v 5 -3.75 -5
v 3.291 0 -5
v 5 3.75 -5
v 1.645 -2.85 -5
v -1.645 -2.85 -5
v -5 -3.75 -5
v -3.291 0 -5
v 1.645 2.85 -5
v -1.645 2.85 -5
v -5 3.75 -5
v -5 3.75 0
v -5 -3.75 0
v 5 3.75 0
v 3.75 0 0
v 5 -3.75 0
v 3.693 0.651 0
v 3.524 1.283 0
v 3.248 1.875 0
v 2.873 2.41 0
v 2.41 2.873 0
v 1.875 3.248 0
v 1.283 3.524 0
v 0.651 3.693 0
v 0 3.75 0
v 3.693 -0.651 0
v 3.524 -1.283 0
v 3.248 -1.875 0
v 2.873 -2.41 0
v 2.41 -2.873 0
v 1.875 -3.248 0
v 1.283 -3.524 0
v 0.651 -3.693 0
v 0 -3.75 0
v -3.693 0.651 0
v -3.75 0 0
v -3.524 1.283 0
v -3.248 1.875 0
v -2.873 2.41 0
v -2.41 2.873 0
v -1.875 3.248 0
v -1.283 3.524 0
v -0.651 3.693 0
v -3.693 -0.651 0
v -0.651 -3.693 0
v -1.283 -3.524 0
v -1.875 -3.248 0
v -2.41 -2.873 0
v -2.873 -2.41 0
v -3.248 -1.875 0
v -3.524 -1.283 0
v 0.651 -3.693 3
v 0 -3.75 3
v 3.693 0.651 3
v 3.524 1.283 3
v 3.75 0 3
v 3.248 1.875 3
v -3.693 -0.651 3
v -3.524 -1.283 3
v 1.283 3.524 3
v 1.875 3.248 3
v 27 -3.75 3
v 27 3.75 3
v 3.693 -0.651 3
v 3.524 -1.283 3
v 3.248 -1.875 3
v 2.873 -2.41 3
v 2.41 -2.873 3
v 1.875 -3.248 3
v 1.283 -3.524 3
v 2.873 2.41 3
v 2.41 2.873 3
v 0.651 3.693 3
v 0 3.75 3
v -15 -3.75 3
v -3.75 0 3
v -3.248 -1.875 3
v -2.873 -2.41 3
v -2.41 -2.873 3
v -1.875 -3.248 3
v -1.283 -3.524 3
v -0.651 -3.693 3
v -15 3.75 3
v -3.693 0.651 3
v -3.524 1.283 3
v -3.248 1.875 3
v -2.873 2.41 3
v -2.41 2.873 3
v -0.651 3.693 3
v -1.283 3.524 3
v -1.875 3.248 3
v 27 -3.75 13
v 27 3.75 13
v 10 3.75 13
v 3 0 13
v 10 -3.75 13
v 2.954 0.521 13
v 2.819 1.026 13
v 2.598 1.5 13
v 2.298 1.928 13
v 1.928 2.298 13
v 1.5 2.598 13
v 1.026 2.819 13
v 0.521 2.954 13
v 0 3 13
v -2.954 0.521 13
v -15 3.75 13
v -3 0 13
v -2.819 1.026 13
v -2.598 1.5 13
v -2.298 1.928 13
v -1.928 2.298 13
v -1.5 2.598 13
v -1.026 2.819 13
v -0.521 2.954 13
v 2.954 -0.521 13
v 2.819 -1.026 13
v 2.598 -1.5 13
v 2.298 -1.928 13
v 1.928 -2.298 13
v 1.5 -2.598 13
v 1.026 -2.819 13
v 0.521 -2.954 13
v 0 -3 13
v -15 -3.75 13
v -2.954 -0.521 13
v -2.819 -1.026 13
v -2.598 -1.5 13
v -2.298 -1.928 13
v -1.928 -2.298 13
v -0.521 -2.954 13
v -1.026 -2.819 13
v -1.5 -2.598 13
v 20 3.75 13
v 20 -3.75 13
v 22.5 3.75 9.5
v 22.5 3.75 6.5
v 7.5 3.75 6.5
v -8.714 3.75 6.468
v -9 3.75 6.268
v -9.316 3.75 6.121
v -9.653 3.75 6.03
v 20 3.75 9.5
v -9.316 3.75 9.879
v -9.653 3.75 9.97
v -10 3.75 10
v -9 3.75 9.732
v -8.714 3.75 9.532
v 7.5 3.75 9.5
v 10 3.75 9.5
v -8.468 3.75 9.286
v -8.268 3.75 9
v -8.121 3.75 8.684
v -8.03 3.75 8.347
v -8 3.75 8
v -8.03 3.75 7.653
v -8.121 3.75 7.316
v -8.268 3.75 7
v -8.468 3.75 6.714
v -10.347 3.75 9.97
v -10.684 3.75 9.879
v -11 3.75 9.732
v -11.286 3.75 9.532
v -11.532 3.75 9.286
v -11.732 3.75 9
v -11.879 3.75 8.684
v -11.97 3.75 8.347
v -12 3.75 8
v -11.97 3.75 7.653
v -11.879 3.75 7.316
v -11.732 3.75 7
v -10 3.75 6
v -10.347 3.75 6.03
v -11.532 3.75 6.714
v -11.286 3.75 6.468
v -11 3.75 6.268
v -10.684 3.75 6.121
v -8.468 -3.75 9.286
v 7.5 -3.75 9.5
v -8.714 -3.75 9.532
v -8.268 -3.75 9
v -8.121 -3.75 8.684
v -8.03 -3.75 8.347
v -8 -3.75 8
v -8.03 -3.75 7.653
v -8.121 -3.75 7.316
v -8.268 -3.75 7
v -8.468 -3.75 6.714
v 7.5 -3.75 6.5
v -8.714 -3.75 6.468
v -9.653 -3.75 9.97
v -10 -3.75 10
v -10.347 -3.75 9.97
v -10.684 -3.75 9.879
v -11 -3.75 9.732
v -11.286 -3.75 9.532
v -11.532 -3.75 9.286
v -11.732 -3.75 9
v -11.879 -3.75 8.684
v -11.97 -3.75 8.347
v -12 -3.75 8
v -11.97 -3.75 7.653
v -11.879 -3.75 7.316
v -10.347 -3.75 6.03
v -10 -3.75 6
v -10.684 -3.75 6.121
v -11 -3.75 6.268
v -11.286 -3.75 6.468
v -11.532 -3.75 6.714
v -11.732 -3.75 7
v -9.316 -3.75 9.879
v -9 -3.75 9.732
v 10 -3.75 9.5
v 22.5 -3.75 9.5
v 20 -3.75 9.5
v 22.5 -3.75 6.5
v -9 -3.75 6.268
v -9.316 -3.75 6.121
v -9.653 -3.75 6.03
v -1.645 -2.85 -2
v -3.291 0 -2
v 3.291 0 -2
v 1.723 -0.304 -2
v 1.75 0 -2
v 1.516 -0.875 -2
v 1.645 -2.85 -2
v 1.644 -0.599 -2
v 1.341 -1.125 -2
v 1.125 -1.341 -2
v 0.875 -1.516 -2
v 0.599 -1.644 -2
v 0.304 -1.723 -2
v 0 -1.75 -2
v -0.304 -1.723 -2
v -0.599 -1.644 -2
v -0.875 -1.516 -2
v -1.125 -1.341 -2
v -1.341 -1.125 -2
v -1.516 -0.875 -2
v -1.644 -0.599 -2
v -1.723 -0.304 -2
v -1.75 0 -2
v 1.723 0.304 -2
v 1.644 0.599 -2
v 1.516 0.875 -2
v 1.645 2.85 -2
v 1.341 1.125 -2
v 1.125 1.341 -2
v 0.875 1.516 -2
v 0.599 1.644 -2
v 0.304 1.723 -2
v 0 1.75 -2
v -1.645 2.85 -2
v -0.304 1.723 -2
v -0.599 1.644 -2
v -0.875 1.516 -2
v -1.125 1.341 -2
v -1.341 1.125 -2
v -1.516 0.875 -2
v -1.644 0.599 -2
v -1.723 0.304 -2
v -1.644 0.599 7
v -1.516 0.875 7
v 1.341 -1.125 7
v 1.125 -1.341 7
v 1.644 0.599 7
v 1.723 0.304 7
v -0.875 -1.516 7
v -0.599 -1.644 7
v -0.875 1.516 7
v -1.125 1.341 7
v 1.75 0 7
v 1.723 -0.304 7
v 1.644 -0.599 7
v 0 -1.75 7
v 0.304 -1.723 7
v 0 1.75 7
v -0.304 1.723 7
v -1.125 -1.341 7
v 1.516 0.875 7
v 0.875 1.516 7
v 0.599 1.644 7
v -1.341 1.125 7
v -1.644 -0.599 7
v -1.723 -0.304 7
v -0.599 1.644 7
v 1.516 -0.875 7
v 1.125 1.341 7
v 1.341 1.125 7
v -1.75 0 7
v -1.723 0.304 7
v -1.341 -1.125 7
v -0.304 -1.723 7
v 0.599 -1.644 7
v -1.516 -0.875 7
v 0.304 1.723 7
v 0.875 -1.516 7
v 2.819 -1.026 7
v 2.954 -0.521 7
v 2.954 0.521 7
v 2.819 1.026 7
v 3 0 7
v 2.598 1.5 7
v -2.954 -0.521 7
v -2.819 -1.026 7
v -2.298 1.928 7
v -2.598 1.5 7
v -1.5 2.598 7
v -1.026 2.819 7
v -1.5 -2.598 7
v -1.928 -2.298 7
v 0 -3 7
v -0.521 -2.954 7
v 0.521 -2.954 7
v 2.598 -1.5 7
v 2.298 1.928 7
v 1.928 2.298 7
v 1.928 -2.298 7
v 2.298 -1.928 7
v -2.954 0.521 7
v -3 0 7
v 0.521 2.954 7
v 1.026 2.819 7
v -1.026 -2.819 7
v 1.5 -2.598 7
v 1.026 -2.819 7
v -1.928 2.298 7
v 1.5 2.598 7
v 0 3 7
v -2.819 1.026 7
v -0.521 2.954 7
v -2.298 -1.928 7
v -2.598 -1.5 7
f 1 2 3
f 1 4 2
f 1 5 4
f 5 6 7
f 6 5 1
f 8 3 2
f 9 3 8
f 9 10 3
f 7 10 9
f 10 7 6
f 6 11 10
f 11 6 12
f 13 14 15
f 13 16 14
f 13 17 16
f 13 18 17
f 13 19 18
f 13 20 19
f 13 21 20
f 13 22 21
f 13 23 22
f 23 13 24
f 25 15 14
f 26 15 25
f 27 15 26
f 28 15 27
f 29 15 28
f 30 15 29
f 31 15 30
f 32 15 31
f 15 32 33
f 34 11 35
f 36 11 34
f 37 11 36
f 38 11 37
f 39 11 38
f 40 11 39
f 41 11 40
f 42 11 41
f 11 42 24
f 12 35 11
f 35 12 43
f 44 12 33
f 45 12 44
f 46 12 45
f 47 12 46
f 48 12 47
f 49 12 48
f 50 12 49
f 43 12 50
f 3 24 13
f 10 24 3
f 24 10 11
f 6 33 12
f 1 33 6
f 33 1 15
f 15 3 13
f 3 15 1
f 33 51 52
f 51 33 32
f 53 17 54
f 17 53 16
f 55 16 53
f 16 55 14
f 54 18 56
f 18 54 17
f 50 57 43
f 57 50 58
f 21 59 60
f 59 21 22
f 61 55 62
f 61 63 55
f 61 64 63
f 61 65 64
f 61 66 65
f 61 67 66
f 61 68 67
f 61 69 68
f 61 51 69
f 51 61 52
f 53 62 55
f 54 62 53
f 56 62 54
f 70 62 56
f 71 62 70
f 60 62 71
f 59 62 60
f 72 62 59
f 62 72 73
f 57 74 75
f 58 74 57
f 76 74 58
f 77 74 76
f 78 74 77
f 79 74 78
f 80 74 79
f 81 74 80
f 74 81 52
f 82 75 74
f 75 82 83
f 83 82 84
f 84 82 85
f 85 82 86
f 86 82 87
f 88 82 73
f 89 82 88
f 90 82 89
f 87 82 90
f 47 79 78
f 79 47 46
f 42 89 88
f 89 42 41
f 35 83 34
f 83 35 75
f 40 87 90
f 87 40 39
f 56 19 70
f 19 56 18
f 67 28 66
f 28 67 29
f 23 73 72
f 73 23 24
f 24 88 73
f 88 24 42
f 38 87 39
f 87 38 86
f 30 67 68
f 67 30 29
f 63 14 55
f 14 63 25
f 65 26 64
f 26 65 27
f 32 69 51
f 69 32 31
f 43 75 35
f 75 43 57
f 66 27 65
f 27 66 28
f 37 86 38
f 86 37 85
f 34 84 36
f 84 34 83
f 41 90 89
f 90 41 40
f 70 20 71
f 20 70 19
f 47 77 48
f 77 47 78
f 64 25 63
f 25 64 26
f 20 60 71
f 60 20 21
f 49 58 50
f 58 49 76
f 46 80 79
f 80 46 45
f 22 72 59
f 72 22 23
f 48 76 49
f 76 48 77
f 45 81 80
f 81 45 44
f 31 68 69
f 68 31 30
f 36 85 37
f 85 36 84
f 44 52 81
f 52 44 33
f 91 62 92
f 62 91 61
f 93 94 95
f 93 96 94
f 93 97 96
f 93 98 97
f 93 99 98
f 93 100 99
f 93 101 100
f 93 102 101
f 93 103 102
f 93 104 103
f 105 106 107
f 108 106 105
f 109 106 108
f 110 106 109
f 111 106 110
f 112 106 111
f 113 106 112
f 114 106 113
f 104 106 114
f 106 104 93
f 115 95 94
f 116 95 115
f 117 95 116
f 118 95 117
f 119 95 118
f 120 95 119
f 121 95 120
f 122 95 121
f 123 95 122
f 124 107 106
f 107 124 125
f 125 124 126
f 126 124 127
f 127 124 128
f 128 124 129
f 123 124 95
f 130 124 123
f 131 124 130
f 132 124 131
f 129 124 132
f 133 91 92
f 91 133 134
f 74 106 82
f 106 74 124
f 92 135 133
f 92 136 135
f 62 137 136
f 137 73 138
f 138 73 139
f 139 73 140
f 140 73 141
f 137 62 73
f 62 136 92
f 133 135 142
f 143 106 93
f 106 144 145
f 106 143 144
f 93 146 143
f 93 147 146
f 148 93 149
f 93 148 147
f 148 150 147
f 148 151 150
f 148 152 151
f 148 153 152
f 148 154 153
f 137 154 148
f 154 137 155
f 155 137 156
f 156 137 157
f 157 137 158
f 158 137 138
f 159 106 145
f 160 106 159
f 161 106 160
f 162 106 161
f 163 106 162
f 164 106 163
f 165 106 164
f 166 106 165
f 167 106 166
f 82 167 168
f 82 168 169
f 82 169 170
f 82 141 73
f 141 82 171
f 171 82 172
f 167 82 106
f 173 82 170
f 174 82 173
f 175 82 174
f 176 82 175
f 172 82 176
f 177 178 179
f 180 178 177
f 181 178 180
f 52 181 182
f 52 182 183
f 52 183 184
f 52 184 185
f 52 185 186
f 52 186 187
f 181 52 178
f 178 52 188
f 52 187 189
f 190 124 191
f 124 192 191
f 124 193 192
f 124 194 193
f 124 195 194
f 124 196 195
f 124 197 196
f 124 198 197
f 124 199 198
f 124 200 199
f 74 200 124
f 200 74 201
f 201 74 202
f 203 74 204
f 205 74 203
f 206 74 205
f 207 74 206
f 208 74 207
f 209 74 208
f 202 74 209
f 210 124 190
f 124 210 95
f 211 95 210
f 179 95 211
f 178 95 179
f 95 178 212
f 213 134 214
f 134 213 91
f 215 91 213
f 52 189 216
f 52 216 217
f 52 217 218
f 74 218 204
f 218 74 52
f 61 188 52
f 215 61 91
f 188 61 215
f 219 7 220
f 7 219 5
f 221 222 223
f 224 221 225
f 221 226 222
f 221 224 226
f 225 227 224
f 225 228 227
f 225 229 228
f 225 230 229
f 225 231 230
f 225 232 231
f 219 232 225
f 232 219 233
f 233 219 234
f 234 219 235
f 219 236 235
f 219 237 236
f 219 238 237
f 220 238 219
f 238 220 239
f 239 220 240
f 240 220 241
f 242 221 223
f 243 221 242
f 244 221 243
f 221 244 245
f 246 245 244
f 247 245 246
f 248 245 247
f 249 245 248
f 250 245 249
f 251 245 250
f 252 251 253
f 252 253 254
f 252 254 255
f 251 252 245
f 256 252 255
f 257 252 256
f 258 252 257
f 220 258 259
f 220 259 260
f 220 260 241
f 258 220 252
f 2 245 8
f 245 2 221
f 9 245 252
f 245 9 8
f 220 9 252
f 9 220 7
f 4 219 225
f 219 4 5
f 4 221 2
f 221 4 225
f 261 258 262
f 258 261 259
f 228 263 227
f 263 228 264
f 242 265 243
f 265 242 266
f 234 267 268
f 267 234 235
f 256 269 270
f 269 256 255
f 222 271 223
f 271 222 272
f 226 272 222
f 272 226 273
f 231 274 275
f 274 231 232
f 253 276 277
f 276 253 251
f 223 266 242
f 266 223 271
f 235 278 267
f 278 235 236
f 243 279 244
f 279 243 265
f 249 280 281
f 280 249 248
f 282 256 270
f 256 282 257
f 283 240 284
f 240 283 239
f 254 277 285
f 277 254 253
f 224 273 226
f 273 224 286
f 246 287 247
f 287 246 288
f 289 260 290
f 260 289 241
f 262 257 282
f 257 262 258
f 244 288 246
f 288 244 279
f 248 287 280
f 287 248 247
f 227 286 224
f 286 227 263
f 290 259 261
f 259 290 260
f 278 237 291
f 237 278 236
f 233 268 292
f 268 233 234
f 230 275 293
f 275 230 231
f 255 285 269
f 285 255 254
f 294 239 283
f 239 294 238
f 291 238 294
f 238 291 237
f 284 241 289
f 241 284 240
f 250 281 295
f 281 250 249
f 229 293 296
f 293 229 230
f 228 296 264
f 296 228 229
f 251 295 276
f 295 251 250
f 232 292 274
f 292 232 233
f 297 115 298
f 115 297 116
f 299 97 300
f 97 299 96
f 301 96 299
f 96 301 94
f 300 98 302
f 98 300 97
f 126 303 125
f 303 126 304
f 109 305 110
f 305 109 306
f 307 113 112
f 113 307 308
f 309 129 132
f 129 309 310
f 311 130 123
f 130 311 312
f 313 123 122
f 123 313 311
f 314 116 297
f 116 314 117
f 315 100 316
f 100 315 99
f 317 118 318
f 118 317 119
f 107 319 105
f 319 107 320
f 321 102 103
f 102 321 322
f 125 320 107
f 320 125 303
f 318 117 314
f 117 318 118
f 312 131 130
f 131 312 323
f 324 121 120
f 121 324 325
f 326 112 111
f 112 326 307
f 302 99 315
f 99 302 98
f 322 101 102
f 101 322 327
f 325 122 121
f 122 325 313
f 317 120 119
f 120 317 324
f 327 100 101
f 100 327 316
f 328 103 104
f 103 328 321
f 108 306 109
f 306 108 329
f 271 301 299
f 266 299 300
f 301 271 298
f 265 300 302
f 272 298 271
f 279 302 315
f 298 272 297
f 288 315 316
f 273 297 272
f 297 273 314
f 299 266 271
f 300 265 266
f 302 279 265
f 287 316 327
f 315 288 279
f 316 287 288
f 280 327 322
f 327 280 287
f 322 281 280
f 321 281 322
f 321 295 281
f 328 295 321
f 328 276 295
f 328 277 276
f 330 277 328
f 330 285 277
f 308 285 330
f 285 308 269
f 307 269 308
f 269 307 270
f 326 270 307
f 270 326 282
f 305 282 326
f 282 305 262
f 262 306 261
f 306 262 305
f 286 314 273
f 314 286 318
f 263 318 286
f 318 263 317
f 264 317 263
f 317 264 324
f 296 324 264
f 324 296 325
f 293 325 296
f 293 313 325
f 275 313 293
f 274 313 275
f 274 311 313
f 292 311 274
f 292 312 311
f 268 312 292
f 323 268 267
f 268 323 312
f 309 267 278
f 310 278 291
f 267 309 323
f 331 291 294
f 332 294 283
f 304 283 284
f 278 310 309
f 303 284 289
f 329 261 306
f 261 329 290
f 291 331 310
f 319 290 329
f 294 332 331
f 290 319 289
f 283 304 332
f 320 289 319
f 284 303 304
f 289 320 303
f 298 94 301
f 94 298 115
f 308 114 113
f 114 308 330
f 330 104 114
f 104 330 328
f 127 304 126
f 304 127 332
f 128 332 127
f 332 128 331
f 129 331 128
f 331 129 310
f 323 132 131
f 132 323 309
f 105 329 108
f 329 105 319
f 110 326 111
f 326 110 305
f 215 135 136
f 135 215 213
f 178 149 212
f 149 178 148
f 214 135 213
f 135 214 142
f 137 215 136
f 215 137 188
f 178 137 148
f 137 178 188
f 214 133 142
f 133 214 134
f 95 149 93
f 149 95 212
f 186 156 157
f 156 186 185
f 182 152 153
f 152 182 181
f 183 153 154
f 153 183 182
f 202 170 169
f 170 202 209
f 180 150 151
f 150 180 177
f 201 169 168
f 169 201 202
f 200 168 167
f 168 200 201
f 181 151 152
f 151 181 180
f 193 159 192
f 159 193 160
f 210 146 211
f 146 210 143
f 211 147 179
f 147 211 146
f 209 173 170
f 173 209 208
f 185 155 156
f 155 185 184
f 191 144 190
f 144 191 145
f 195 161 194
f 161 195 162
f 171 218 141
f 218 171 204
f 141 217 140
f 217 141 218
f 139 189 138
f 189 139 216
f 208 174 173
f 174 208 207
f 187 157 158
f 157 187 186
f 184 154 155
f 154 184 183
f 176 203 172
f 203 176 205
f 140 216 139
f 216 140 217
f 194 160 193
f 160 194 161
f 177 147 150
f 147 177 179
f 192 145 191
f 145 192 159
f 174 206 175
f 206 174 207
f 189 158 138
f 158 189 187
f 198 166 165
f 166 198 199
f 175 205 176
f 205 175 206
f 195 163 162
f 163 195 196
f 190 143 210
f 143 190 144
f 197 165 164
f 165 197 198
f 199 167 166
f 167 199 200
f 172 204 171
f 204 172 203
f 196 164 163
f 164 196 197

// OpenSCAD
// file: ../lib.scad
module chamferedCube(x=10, y=10, z=10, chamfer=1)
{
    c=sin(45);

    minkowski()
    {
        cube([x-c*2,y-c*2,z-c*2],true);
        polyhedron([[c,0,0],[0,0,c],[0,c,0],[0,0,-c],[0,-c,0],[-c,0,0]],
        [[0,1,2], [0,2,3],[0,3,4],[0,4,1],[5,2,1], [5,3,2],[5,4,3],[5,1,4],]);
        //cube([10,10,10],true);
    }
}

module radCube(x=10, y=10, z=10, rad=1)
{
    minkowski()
    {
        cube([x-rad*2,y-rad*2,z-rad*2],true);
        sphere(r=rad);
        //cube([10,10,10],true);
    }
}

module radCylinder(d=5,h=50,r=1)
{
    minkowski()
    {
        cylinder(h,d-r*2,true);
        sphere(r=1);
        //cube([10,10,10],true);
    }
}

module hex(af=10)
{
    r= af/2/cos(30);
    regular_polygon(order=6,r=r);
 }

 module regular_polygon(order = 4, r=1){
     angles=[ for (i = [0:order-1]) i*(360/order) ];
     coords=[ for (th=angles) [r*cos(th), r*sin(th)] ];
     polygon(coords);
 }

module chamferHole(d=10, chamfer=1)
{
    
    c=chamfer*sin(45);
    rotate_extrude($fn=200) polygon(points=[[0,c],[d/2,c],[d/2+c,0],[d/2,-c],[0,-c]]);
}

$fn=100;
//radCylinder();
//hex();
//sphere(r=rad,$fa=10);
//chamferedCube();
//++radiusedCube();
//chamferHole(7,3);
// main file
include <../lib.scad>;
$fn=36;

difference(){
    union(){  //outerform
        rotate([180,0,0]){translate([0,0,2.5]){cube([10,7.5,5],true);}}
        cylinder(d=7.5,h=3);
        translate([6,0,8]){cube([42,7.5,10],center=true);}
        }
        //innerform
    rotate([180,0,0]){translate([0,0,2]){linear_extrude(6){hex(5.7);}}}
    cylinder(d=3.5,h=50,center=true);
    translate([0,0,7]){cylinder(d=6,h=50);}
    translate([15,0,8]){cube([15,50,3],center=true);}
    translate([15,0,12]){cube([10,50,10],center=true);}
    translate([-10,0,8]){rotate([90,0,0]){cylinder(d=4,h=50,center=true);}}
    }    
    
    
